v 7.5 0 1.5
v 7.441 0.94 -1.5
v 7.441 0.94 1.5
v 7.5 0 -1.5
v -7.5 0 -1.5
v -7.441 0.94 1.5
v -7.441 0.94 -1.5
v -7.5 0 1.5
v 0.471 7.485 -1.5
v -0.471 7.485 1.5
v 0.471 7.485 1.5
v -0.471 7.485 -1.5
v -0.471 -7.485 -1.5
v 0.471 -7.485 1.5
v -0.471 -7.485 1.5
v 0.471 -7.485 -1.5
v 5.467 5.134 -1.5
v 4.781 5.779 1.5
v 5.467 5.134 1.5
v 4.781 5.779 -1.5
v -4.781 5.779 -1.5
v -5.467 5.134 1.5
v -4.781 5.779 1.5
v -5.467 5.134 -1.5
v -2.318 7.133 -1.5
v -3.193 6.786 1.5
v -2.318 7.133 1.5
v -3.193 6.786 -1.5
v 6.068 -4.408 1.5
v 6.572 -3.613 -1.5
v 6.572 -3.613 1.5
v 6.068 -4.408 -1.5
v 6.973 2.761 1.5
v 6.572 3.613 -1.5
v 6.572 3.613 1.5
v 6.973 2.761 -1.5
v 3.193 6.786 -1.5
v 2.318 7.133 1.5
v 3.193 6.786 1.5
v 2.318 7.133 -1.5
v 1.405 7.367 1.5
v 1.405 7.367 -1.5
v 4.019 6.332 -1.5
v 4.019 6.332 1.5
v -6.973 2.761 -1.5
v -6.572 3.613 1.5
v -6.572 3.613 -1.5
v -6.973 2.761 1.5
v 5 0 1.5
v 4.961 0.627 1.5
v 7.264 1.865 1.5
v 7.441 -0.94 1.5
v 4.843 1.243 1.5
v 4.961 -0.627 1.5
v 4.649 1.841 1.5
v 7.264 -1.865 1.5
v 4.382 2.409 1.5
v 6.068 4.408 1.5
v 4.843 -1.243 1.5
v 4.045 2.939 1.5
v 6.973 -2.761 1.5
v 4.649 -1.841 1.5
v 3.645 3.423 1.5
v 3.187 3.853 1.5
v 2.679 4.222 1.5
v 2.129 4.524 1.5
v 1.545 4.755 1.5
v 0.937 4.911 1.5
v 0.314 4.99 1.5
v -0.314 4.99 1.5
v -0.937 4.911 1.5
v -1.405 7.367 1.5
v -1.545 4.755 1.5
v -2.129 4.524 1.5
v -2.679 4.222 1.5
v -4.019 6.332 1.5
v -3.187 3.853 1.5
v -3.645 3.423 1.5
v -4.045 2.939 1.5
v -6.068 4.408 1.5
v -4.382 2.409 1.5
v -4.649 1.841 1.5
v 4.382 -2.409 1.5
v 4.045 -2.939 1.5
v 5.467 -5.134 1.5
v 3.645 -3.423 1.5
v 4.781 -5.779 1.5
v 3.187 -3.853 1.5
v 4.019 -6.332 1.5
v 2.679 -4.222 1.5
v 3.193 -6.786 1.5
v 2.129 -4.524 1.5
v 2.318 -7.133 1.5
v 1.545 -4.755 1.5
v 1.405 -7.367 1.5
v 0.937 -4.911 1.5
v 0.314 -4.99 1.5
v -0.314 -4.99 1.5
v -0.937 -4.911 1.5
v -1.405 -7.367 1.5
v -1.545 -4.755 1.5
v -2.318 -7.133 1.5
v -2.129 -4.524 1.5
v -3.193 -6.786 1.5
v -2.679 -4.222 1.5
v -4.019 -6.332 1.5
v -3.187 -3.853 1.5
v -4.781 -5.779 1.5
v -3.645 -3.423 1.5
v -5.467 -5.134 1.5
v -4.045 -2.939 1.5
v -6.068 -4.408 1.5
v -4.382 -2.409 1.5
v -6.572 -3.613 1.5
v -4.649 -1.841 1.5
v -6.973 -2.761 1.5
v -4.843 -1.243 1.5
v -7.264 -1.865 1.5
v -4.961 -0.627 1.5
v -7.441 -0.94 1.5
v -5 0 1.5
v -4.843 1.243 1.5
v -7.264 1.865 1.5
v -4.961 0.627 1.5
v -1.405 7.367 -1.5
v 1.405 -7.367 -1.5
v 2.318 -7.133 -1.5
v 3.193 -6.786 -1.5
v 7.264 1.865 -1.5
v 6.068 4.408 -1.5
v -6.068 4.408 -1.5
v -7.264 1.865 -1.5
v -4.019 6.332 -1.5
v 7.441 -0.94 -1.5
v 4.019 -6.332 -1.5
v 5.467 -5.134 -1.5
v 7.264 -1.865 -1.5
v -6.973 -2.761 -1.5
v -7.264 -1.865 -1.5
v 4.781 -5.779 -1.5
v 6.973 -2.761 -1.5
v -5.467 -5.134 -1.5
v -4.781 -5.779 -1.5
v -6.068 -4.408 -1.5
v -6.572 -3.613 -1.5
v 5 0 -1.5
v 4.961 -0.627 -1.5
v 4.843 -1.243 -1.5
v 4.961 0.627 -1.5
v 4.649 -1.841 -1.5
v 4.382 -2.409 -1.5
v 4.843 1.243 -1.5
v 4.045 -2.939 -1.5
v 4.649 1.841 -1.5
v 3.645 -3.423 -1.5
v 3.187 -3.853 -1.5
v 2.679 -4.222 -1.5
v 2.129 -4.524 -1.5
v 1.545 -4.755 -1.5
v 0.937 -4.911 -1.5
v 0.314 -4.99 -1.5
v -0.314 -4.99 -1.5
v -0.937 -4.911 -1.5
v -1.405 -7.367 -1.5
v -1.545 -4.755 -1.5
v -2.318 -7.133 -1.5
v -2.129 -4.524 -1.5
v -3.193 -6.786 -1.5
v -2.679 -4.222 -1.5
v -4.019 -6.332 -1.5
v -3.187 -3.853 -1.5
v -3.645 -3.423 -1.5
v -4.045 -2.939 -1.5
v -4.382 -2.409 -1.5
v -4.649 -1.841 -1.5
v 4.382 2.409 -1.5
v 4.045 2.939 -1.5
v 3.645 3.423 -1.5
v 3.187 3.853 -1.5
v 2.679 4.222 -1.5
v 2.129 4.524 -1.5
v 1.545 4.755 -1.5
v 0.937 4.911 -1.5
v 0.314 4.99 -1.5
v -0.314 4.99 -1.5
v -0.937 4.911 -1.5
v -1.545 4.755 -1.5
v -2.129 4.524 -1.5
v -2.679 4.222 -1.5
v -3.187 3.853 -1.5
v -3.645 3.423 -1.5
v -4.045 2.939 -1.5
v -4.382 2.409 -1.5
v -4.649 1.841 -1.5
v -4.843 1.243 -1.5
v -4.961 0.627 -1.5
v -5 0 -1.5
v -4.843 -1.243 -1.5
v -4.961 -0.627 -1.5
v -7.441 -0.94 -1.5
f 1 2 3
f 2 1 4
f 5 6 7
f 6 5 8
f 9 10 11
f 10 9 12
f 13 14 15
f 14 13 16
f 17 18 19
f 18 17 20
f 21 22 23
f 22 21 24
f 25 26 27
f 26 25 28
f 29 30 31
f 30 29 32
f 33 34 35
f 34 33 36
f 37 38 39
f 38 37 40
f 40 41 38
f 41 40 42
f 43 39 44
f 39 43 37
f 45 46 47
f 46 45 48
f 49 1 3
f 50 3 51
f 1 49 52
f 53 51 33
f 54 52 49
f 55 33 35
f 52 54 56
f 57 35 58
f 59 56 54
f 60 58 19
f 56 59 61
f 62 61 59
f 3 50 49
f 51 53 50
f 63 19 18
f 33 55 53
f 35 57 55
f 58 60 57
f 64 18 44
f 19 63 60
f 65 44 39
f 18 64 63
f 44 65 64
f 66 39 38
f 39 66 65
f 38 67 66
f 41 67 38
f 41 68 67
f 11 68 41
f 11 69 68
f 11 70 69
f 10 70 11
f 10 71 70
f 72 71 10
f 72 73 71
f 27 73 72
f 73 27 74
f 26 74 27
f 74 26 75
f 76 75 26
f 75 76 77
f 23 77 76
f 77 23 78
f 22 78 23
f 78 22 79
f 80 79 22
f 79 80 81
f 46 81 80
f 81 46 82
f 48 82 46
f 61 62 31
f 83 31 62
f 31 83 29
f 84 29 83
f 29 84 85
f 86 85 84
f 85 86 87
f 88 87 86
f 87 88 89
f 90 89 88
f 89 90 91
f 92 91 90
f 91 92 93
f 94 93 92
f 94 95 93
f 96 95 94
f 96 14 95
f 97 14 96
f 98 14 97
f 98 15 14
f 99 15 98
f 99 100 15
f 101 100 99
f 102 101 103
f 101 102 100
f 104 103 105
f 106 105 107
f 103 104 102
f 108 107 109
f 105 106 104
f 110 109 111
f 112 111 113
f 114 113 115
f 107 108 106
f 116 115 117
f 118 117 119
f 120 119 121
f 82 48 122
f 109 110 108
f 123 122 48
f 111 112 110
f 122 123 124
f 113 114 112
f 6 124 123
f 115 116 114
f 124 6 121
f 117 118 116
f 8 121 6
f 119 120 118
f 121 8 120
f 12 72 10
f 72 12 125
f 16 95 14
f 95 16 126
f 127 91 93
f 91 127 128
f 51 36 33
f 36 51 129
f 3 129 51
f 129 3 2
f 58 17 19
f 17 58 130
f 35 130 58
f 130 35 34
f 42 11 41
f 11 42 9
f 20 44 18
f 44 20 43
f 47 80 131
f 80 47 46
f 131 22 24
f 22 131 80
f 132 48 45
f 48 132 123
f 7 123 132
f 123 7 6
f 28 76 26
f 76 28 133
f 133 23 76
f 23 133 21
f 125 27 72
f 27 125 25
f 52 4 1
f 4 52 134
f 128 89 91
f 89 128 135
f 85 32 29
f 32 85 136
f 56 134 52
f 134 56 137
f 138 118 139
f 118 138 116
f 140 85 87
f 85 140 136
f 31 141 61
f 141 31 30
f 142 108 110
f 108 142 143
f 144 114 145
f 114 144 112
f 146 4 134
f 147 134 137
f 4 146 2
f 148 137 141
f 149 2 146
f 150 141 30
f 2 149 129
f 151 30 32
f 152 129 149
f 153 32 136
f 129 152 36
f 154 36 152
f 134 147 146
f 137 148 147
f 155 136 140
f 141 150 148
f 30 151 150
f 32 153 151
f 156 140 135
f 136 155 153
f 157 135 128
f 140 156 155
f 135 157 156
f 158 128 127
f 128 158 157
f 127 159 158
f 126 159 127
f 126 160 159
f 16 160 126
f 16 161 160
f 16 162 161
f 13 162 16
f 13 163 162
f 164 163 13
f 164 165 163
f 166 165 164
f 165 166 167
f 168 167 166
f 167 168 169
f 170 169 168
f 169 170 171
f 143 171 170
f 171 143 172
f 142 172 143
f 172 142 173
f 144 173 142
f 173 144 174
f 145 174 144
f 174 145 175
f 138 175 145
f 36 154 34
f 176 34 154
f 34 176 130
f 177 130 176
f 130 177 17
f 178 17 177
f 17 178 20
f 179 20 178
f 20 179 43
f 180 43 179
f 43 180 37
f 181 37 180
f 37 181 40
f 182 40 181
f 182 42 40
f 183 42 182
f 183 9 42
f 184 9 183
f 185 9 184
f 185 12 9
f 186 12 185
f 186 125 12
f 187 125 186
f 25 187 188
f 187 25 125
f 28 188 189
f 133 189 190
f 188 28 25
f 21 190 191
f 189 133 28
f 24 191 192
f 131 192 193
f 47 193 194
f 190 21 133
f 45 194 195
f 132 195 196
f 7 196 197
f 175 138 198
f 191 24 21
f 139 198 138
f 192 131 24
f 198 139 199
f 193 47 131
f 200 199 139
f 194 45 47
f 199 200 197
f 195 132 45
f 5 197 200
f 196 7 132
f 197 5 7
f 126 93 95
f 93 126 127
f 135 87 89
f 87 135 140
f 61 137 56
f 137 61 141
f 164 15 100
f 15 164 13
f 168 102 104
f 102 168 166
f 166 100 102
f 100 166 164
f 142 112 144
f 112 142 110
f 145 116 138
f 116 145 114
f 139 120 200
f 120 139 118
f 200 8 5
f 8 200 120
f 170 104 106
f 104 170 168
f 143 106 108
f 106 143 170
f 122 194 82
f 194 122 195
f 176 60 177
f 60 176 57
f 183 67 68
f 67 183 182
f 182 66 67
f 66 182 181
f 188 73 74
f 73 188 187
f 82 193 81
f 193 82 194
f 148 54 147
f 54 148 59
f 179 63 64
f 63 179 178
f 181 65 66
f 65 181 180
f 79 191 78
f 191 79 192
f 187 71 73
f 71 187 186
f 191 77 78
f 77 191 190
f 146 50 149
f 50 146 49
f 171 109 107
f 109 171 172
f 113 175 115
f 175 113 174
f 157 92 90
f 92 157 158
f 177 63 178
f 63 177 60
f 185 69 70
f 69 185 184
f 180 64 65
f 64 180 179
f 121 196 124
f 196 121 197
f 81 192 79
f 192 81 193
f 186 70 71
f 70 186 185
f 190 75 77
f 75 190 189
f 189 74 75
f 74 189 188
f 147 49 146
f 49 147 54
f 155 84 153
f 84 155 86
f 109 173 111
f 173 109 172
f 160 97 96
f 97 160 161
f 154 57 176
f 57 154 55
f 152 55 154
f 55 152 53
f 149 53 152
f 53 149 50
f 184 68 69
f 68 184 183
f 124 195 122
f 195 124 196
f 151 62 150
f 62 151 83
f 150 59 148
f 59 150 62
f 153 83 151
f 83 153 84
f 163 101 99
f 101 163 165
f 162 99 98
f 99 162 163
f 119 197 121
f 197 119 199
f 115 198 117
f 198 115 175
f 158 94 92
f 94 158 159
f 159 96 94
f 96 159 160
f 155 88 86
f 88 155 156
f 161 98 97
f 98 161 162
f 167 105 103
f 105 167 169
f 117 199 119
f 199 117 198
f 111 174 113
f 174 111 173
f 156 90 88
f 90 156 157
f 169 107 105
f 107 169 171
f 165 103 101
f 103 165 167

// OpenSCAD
$fn = 50;


difference() {
	union() {
		translate(v = [0, 0, -1.5000000000]) {
			cylinder(h = 3, r = 7.5000000000);
		}
	}
	union() {
		translate(v = [0, 0, -100.0000000000]) {
			cylinder(h = 200, r = 5);
		}
	}
}
